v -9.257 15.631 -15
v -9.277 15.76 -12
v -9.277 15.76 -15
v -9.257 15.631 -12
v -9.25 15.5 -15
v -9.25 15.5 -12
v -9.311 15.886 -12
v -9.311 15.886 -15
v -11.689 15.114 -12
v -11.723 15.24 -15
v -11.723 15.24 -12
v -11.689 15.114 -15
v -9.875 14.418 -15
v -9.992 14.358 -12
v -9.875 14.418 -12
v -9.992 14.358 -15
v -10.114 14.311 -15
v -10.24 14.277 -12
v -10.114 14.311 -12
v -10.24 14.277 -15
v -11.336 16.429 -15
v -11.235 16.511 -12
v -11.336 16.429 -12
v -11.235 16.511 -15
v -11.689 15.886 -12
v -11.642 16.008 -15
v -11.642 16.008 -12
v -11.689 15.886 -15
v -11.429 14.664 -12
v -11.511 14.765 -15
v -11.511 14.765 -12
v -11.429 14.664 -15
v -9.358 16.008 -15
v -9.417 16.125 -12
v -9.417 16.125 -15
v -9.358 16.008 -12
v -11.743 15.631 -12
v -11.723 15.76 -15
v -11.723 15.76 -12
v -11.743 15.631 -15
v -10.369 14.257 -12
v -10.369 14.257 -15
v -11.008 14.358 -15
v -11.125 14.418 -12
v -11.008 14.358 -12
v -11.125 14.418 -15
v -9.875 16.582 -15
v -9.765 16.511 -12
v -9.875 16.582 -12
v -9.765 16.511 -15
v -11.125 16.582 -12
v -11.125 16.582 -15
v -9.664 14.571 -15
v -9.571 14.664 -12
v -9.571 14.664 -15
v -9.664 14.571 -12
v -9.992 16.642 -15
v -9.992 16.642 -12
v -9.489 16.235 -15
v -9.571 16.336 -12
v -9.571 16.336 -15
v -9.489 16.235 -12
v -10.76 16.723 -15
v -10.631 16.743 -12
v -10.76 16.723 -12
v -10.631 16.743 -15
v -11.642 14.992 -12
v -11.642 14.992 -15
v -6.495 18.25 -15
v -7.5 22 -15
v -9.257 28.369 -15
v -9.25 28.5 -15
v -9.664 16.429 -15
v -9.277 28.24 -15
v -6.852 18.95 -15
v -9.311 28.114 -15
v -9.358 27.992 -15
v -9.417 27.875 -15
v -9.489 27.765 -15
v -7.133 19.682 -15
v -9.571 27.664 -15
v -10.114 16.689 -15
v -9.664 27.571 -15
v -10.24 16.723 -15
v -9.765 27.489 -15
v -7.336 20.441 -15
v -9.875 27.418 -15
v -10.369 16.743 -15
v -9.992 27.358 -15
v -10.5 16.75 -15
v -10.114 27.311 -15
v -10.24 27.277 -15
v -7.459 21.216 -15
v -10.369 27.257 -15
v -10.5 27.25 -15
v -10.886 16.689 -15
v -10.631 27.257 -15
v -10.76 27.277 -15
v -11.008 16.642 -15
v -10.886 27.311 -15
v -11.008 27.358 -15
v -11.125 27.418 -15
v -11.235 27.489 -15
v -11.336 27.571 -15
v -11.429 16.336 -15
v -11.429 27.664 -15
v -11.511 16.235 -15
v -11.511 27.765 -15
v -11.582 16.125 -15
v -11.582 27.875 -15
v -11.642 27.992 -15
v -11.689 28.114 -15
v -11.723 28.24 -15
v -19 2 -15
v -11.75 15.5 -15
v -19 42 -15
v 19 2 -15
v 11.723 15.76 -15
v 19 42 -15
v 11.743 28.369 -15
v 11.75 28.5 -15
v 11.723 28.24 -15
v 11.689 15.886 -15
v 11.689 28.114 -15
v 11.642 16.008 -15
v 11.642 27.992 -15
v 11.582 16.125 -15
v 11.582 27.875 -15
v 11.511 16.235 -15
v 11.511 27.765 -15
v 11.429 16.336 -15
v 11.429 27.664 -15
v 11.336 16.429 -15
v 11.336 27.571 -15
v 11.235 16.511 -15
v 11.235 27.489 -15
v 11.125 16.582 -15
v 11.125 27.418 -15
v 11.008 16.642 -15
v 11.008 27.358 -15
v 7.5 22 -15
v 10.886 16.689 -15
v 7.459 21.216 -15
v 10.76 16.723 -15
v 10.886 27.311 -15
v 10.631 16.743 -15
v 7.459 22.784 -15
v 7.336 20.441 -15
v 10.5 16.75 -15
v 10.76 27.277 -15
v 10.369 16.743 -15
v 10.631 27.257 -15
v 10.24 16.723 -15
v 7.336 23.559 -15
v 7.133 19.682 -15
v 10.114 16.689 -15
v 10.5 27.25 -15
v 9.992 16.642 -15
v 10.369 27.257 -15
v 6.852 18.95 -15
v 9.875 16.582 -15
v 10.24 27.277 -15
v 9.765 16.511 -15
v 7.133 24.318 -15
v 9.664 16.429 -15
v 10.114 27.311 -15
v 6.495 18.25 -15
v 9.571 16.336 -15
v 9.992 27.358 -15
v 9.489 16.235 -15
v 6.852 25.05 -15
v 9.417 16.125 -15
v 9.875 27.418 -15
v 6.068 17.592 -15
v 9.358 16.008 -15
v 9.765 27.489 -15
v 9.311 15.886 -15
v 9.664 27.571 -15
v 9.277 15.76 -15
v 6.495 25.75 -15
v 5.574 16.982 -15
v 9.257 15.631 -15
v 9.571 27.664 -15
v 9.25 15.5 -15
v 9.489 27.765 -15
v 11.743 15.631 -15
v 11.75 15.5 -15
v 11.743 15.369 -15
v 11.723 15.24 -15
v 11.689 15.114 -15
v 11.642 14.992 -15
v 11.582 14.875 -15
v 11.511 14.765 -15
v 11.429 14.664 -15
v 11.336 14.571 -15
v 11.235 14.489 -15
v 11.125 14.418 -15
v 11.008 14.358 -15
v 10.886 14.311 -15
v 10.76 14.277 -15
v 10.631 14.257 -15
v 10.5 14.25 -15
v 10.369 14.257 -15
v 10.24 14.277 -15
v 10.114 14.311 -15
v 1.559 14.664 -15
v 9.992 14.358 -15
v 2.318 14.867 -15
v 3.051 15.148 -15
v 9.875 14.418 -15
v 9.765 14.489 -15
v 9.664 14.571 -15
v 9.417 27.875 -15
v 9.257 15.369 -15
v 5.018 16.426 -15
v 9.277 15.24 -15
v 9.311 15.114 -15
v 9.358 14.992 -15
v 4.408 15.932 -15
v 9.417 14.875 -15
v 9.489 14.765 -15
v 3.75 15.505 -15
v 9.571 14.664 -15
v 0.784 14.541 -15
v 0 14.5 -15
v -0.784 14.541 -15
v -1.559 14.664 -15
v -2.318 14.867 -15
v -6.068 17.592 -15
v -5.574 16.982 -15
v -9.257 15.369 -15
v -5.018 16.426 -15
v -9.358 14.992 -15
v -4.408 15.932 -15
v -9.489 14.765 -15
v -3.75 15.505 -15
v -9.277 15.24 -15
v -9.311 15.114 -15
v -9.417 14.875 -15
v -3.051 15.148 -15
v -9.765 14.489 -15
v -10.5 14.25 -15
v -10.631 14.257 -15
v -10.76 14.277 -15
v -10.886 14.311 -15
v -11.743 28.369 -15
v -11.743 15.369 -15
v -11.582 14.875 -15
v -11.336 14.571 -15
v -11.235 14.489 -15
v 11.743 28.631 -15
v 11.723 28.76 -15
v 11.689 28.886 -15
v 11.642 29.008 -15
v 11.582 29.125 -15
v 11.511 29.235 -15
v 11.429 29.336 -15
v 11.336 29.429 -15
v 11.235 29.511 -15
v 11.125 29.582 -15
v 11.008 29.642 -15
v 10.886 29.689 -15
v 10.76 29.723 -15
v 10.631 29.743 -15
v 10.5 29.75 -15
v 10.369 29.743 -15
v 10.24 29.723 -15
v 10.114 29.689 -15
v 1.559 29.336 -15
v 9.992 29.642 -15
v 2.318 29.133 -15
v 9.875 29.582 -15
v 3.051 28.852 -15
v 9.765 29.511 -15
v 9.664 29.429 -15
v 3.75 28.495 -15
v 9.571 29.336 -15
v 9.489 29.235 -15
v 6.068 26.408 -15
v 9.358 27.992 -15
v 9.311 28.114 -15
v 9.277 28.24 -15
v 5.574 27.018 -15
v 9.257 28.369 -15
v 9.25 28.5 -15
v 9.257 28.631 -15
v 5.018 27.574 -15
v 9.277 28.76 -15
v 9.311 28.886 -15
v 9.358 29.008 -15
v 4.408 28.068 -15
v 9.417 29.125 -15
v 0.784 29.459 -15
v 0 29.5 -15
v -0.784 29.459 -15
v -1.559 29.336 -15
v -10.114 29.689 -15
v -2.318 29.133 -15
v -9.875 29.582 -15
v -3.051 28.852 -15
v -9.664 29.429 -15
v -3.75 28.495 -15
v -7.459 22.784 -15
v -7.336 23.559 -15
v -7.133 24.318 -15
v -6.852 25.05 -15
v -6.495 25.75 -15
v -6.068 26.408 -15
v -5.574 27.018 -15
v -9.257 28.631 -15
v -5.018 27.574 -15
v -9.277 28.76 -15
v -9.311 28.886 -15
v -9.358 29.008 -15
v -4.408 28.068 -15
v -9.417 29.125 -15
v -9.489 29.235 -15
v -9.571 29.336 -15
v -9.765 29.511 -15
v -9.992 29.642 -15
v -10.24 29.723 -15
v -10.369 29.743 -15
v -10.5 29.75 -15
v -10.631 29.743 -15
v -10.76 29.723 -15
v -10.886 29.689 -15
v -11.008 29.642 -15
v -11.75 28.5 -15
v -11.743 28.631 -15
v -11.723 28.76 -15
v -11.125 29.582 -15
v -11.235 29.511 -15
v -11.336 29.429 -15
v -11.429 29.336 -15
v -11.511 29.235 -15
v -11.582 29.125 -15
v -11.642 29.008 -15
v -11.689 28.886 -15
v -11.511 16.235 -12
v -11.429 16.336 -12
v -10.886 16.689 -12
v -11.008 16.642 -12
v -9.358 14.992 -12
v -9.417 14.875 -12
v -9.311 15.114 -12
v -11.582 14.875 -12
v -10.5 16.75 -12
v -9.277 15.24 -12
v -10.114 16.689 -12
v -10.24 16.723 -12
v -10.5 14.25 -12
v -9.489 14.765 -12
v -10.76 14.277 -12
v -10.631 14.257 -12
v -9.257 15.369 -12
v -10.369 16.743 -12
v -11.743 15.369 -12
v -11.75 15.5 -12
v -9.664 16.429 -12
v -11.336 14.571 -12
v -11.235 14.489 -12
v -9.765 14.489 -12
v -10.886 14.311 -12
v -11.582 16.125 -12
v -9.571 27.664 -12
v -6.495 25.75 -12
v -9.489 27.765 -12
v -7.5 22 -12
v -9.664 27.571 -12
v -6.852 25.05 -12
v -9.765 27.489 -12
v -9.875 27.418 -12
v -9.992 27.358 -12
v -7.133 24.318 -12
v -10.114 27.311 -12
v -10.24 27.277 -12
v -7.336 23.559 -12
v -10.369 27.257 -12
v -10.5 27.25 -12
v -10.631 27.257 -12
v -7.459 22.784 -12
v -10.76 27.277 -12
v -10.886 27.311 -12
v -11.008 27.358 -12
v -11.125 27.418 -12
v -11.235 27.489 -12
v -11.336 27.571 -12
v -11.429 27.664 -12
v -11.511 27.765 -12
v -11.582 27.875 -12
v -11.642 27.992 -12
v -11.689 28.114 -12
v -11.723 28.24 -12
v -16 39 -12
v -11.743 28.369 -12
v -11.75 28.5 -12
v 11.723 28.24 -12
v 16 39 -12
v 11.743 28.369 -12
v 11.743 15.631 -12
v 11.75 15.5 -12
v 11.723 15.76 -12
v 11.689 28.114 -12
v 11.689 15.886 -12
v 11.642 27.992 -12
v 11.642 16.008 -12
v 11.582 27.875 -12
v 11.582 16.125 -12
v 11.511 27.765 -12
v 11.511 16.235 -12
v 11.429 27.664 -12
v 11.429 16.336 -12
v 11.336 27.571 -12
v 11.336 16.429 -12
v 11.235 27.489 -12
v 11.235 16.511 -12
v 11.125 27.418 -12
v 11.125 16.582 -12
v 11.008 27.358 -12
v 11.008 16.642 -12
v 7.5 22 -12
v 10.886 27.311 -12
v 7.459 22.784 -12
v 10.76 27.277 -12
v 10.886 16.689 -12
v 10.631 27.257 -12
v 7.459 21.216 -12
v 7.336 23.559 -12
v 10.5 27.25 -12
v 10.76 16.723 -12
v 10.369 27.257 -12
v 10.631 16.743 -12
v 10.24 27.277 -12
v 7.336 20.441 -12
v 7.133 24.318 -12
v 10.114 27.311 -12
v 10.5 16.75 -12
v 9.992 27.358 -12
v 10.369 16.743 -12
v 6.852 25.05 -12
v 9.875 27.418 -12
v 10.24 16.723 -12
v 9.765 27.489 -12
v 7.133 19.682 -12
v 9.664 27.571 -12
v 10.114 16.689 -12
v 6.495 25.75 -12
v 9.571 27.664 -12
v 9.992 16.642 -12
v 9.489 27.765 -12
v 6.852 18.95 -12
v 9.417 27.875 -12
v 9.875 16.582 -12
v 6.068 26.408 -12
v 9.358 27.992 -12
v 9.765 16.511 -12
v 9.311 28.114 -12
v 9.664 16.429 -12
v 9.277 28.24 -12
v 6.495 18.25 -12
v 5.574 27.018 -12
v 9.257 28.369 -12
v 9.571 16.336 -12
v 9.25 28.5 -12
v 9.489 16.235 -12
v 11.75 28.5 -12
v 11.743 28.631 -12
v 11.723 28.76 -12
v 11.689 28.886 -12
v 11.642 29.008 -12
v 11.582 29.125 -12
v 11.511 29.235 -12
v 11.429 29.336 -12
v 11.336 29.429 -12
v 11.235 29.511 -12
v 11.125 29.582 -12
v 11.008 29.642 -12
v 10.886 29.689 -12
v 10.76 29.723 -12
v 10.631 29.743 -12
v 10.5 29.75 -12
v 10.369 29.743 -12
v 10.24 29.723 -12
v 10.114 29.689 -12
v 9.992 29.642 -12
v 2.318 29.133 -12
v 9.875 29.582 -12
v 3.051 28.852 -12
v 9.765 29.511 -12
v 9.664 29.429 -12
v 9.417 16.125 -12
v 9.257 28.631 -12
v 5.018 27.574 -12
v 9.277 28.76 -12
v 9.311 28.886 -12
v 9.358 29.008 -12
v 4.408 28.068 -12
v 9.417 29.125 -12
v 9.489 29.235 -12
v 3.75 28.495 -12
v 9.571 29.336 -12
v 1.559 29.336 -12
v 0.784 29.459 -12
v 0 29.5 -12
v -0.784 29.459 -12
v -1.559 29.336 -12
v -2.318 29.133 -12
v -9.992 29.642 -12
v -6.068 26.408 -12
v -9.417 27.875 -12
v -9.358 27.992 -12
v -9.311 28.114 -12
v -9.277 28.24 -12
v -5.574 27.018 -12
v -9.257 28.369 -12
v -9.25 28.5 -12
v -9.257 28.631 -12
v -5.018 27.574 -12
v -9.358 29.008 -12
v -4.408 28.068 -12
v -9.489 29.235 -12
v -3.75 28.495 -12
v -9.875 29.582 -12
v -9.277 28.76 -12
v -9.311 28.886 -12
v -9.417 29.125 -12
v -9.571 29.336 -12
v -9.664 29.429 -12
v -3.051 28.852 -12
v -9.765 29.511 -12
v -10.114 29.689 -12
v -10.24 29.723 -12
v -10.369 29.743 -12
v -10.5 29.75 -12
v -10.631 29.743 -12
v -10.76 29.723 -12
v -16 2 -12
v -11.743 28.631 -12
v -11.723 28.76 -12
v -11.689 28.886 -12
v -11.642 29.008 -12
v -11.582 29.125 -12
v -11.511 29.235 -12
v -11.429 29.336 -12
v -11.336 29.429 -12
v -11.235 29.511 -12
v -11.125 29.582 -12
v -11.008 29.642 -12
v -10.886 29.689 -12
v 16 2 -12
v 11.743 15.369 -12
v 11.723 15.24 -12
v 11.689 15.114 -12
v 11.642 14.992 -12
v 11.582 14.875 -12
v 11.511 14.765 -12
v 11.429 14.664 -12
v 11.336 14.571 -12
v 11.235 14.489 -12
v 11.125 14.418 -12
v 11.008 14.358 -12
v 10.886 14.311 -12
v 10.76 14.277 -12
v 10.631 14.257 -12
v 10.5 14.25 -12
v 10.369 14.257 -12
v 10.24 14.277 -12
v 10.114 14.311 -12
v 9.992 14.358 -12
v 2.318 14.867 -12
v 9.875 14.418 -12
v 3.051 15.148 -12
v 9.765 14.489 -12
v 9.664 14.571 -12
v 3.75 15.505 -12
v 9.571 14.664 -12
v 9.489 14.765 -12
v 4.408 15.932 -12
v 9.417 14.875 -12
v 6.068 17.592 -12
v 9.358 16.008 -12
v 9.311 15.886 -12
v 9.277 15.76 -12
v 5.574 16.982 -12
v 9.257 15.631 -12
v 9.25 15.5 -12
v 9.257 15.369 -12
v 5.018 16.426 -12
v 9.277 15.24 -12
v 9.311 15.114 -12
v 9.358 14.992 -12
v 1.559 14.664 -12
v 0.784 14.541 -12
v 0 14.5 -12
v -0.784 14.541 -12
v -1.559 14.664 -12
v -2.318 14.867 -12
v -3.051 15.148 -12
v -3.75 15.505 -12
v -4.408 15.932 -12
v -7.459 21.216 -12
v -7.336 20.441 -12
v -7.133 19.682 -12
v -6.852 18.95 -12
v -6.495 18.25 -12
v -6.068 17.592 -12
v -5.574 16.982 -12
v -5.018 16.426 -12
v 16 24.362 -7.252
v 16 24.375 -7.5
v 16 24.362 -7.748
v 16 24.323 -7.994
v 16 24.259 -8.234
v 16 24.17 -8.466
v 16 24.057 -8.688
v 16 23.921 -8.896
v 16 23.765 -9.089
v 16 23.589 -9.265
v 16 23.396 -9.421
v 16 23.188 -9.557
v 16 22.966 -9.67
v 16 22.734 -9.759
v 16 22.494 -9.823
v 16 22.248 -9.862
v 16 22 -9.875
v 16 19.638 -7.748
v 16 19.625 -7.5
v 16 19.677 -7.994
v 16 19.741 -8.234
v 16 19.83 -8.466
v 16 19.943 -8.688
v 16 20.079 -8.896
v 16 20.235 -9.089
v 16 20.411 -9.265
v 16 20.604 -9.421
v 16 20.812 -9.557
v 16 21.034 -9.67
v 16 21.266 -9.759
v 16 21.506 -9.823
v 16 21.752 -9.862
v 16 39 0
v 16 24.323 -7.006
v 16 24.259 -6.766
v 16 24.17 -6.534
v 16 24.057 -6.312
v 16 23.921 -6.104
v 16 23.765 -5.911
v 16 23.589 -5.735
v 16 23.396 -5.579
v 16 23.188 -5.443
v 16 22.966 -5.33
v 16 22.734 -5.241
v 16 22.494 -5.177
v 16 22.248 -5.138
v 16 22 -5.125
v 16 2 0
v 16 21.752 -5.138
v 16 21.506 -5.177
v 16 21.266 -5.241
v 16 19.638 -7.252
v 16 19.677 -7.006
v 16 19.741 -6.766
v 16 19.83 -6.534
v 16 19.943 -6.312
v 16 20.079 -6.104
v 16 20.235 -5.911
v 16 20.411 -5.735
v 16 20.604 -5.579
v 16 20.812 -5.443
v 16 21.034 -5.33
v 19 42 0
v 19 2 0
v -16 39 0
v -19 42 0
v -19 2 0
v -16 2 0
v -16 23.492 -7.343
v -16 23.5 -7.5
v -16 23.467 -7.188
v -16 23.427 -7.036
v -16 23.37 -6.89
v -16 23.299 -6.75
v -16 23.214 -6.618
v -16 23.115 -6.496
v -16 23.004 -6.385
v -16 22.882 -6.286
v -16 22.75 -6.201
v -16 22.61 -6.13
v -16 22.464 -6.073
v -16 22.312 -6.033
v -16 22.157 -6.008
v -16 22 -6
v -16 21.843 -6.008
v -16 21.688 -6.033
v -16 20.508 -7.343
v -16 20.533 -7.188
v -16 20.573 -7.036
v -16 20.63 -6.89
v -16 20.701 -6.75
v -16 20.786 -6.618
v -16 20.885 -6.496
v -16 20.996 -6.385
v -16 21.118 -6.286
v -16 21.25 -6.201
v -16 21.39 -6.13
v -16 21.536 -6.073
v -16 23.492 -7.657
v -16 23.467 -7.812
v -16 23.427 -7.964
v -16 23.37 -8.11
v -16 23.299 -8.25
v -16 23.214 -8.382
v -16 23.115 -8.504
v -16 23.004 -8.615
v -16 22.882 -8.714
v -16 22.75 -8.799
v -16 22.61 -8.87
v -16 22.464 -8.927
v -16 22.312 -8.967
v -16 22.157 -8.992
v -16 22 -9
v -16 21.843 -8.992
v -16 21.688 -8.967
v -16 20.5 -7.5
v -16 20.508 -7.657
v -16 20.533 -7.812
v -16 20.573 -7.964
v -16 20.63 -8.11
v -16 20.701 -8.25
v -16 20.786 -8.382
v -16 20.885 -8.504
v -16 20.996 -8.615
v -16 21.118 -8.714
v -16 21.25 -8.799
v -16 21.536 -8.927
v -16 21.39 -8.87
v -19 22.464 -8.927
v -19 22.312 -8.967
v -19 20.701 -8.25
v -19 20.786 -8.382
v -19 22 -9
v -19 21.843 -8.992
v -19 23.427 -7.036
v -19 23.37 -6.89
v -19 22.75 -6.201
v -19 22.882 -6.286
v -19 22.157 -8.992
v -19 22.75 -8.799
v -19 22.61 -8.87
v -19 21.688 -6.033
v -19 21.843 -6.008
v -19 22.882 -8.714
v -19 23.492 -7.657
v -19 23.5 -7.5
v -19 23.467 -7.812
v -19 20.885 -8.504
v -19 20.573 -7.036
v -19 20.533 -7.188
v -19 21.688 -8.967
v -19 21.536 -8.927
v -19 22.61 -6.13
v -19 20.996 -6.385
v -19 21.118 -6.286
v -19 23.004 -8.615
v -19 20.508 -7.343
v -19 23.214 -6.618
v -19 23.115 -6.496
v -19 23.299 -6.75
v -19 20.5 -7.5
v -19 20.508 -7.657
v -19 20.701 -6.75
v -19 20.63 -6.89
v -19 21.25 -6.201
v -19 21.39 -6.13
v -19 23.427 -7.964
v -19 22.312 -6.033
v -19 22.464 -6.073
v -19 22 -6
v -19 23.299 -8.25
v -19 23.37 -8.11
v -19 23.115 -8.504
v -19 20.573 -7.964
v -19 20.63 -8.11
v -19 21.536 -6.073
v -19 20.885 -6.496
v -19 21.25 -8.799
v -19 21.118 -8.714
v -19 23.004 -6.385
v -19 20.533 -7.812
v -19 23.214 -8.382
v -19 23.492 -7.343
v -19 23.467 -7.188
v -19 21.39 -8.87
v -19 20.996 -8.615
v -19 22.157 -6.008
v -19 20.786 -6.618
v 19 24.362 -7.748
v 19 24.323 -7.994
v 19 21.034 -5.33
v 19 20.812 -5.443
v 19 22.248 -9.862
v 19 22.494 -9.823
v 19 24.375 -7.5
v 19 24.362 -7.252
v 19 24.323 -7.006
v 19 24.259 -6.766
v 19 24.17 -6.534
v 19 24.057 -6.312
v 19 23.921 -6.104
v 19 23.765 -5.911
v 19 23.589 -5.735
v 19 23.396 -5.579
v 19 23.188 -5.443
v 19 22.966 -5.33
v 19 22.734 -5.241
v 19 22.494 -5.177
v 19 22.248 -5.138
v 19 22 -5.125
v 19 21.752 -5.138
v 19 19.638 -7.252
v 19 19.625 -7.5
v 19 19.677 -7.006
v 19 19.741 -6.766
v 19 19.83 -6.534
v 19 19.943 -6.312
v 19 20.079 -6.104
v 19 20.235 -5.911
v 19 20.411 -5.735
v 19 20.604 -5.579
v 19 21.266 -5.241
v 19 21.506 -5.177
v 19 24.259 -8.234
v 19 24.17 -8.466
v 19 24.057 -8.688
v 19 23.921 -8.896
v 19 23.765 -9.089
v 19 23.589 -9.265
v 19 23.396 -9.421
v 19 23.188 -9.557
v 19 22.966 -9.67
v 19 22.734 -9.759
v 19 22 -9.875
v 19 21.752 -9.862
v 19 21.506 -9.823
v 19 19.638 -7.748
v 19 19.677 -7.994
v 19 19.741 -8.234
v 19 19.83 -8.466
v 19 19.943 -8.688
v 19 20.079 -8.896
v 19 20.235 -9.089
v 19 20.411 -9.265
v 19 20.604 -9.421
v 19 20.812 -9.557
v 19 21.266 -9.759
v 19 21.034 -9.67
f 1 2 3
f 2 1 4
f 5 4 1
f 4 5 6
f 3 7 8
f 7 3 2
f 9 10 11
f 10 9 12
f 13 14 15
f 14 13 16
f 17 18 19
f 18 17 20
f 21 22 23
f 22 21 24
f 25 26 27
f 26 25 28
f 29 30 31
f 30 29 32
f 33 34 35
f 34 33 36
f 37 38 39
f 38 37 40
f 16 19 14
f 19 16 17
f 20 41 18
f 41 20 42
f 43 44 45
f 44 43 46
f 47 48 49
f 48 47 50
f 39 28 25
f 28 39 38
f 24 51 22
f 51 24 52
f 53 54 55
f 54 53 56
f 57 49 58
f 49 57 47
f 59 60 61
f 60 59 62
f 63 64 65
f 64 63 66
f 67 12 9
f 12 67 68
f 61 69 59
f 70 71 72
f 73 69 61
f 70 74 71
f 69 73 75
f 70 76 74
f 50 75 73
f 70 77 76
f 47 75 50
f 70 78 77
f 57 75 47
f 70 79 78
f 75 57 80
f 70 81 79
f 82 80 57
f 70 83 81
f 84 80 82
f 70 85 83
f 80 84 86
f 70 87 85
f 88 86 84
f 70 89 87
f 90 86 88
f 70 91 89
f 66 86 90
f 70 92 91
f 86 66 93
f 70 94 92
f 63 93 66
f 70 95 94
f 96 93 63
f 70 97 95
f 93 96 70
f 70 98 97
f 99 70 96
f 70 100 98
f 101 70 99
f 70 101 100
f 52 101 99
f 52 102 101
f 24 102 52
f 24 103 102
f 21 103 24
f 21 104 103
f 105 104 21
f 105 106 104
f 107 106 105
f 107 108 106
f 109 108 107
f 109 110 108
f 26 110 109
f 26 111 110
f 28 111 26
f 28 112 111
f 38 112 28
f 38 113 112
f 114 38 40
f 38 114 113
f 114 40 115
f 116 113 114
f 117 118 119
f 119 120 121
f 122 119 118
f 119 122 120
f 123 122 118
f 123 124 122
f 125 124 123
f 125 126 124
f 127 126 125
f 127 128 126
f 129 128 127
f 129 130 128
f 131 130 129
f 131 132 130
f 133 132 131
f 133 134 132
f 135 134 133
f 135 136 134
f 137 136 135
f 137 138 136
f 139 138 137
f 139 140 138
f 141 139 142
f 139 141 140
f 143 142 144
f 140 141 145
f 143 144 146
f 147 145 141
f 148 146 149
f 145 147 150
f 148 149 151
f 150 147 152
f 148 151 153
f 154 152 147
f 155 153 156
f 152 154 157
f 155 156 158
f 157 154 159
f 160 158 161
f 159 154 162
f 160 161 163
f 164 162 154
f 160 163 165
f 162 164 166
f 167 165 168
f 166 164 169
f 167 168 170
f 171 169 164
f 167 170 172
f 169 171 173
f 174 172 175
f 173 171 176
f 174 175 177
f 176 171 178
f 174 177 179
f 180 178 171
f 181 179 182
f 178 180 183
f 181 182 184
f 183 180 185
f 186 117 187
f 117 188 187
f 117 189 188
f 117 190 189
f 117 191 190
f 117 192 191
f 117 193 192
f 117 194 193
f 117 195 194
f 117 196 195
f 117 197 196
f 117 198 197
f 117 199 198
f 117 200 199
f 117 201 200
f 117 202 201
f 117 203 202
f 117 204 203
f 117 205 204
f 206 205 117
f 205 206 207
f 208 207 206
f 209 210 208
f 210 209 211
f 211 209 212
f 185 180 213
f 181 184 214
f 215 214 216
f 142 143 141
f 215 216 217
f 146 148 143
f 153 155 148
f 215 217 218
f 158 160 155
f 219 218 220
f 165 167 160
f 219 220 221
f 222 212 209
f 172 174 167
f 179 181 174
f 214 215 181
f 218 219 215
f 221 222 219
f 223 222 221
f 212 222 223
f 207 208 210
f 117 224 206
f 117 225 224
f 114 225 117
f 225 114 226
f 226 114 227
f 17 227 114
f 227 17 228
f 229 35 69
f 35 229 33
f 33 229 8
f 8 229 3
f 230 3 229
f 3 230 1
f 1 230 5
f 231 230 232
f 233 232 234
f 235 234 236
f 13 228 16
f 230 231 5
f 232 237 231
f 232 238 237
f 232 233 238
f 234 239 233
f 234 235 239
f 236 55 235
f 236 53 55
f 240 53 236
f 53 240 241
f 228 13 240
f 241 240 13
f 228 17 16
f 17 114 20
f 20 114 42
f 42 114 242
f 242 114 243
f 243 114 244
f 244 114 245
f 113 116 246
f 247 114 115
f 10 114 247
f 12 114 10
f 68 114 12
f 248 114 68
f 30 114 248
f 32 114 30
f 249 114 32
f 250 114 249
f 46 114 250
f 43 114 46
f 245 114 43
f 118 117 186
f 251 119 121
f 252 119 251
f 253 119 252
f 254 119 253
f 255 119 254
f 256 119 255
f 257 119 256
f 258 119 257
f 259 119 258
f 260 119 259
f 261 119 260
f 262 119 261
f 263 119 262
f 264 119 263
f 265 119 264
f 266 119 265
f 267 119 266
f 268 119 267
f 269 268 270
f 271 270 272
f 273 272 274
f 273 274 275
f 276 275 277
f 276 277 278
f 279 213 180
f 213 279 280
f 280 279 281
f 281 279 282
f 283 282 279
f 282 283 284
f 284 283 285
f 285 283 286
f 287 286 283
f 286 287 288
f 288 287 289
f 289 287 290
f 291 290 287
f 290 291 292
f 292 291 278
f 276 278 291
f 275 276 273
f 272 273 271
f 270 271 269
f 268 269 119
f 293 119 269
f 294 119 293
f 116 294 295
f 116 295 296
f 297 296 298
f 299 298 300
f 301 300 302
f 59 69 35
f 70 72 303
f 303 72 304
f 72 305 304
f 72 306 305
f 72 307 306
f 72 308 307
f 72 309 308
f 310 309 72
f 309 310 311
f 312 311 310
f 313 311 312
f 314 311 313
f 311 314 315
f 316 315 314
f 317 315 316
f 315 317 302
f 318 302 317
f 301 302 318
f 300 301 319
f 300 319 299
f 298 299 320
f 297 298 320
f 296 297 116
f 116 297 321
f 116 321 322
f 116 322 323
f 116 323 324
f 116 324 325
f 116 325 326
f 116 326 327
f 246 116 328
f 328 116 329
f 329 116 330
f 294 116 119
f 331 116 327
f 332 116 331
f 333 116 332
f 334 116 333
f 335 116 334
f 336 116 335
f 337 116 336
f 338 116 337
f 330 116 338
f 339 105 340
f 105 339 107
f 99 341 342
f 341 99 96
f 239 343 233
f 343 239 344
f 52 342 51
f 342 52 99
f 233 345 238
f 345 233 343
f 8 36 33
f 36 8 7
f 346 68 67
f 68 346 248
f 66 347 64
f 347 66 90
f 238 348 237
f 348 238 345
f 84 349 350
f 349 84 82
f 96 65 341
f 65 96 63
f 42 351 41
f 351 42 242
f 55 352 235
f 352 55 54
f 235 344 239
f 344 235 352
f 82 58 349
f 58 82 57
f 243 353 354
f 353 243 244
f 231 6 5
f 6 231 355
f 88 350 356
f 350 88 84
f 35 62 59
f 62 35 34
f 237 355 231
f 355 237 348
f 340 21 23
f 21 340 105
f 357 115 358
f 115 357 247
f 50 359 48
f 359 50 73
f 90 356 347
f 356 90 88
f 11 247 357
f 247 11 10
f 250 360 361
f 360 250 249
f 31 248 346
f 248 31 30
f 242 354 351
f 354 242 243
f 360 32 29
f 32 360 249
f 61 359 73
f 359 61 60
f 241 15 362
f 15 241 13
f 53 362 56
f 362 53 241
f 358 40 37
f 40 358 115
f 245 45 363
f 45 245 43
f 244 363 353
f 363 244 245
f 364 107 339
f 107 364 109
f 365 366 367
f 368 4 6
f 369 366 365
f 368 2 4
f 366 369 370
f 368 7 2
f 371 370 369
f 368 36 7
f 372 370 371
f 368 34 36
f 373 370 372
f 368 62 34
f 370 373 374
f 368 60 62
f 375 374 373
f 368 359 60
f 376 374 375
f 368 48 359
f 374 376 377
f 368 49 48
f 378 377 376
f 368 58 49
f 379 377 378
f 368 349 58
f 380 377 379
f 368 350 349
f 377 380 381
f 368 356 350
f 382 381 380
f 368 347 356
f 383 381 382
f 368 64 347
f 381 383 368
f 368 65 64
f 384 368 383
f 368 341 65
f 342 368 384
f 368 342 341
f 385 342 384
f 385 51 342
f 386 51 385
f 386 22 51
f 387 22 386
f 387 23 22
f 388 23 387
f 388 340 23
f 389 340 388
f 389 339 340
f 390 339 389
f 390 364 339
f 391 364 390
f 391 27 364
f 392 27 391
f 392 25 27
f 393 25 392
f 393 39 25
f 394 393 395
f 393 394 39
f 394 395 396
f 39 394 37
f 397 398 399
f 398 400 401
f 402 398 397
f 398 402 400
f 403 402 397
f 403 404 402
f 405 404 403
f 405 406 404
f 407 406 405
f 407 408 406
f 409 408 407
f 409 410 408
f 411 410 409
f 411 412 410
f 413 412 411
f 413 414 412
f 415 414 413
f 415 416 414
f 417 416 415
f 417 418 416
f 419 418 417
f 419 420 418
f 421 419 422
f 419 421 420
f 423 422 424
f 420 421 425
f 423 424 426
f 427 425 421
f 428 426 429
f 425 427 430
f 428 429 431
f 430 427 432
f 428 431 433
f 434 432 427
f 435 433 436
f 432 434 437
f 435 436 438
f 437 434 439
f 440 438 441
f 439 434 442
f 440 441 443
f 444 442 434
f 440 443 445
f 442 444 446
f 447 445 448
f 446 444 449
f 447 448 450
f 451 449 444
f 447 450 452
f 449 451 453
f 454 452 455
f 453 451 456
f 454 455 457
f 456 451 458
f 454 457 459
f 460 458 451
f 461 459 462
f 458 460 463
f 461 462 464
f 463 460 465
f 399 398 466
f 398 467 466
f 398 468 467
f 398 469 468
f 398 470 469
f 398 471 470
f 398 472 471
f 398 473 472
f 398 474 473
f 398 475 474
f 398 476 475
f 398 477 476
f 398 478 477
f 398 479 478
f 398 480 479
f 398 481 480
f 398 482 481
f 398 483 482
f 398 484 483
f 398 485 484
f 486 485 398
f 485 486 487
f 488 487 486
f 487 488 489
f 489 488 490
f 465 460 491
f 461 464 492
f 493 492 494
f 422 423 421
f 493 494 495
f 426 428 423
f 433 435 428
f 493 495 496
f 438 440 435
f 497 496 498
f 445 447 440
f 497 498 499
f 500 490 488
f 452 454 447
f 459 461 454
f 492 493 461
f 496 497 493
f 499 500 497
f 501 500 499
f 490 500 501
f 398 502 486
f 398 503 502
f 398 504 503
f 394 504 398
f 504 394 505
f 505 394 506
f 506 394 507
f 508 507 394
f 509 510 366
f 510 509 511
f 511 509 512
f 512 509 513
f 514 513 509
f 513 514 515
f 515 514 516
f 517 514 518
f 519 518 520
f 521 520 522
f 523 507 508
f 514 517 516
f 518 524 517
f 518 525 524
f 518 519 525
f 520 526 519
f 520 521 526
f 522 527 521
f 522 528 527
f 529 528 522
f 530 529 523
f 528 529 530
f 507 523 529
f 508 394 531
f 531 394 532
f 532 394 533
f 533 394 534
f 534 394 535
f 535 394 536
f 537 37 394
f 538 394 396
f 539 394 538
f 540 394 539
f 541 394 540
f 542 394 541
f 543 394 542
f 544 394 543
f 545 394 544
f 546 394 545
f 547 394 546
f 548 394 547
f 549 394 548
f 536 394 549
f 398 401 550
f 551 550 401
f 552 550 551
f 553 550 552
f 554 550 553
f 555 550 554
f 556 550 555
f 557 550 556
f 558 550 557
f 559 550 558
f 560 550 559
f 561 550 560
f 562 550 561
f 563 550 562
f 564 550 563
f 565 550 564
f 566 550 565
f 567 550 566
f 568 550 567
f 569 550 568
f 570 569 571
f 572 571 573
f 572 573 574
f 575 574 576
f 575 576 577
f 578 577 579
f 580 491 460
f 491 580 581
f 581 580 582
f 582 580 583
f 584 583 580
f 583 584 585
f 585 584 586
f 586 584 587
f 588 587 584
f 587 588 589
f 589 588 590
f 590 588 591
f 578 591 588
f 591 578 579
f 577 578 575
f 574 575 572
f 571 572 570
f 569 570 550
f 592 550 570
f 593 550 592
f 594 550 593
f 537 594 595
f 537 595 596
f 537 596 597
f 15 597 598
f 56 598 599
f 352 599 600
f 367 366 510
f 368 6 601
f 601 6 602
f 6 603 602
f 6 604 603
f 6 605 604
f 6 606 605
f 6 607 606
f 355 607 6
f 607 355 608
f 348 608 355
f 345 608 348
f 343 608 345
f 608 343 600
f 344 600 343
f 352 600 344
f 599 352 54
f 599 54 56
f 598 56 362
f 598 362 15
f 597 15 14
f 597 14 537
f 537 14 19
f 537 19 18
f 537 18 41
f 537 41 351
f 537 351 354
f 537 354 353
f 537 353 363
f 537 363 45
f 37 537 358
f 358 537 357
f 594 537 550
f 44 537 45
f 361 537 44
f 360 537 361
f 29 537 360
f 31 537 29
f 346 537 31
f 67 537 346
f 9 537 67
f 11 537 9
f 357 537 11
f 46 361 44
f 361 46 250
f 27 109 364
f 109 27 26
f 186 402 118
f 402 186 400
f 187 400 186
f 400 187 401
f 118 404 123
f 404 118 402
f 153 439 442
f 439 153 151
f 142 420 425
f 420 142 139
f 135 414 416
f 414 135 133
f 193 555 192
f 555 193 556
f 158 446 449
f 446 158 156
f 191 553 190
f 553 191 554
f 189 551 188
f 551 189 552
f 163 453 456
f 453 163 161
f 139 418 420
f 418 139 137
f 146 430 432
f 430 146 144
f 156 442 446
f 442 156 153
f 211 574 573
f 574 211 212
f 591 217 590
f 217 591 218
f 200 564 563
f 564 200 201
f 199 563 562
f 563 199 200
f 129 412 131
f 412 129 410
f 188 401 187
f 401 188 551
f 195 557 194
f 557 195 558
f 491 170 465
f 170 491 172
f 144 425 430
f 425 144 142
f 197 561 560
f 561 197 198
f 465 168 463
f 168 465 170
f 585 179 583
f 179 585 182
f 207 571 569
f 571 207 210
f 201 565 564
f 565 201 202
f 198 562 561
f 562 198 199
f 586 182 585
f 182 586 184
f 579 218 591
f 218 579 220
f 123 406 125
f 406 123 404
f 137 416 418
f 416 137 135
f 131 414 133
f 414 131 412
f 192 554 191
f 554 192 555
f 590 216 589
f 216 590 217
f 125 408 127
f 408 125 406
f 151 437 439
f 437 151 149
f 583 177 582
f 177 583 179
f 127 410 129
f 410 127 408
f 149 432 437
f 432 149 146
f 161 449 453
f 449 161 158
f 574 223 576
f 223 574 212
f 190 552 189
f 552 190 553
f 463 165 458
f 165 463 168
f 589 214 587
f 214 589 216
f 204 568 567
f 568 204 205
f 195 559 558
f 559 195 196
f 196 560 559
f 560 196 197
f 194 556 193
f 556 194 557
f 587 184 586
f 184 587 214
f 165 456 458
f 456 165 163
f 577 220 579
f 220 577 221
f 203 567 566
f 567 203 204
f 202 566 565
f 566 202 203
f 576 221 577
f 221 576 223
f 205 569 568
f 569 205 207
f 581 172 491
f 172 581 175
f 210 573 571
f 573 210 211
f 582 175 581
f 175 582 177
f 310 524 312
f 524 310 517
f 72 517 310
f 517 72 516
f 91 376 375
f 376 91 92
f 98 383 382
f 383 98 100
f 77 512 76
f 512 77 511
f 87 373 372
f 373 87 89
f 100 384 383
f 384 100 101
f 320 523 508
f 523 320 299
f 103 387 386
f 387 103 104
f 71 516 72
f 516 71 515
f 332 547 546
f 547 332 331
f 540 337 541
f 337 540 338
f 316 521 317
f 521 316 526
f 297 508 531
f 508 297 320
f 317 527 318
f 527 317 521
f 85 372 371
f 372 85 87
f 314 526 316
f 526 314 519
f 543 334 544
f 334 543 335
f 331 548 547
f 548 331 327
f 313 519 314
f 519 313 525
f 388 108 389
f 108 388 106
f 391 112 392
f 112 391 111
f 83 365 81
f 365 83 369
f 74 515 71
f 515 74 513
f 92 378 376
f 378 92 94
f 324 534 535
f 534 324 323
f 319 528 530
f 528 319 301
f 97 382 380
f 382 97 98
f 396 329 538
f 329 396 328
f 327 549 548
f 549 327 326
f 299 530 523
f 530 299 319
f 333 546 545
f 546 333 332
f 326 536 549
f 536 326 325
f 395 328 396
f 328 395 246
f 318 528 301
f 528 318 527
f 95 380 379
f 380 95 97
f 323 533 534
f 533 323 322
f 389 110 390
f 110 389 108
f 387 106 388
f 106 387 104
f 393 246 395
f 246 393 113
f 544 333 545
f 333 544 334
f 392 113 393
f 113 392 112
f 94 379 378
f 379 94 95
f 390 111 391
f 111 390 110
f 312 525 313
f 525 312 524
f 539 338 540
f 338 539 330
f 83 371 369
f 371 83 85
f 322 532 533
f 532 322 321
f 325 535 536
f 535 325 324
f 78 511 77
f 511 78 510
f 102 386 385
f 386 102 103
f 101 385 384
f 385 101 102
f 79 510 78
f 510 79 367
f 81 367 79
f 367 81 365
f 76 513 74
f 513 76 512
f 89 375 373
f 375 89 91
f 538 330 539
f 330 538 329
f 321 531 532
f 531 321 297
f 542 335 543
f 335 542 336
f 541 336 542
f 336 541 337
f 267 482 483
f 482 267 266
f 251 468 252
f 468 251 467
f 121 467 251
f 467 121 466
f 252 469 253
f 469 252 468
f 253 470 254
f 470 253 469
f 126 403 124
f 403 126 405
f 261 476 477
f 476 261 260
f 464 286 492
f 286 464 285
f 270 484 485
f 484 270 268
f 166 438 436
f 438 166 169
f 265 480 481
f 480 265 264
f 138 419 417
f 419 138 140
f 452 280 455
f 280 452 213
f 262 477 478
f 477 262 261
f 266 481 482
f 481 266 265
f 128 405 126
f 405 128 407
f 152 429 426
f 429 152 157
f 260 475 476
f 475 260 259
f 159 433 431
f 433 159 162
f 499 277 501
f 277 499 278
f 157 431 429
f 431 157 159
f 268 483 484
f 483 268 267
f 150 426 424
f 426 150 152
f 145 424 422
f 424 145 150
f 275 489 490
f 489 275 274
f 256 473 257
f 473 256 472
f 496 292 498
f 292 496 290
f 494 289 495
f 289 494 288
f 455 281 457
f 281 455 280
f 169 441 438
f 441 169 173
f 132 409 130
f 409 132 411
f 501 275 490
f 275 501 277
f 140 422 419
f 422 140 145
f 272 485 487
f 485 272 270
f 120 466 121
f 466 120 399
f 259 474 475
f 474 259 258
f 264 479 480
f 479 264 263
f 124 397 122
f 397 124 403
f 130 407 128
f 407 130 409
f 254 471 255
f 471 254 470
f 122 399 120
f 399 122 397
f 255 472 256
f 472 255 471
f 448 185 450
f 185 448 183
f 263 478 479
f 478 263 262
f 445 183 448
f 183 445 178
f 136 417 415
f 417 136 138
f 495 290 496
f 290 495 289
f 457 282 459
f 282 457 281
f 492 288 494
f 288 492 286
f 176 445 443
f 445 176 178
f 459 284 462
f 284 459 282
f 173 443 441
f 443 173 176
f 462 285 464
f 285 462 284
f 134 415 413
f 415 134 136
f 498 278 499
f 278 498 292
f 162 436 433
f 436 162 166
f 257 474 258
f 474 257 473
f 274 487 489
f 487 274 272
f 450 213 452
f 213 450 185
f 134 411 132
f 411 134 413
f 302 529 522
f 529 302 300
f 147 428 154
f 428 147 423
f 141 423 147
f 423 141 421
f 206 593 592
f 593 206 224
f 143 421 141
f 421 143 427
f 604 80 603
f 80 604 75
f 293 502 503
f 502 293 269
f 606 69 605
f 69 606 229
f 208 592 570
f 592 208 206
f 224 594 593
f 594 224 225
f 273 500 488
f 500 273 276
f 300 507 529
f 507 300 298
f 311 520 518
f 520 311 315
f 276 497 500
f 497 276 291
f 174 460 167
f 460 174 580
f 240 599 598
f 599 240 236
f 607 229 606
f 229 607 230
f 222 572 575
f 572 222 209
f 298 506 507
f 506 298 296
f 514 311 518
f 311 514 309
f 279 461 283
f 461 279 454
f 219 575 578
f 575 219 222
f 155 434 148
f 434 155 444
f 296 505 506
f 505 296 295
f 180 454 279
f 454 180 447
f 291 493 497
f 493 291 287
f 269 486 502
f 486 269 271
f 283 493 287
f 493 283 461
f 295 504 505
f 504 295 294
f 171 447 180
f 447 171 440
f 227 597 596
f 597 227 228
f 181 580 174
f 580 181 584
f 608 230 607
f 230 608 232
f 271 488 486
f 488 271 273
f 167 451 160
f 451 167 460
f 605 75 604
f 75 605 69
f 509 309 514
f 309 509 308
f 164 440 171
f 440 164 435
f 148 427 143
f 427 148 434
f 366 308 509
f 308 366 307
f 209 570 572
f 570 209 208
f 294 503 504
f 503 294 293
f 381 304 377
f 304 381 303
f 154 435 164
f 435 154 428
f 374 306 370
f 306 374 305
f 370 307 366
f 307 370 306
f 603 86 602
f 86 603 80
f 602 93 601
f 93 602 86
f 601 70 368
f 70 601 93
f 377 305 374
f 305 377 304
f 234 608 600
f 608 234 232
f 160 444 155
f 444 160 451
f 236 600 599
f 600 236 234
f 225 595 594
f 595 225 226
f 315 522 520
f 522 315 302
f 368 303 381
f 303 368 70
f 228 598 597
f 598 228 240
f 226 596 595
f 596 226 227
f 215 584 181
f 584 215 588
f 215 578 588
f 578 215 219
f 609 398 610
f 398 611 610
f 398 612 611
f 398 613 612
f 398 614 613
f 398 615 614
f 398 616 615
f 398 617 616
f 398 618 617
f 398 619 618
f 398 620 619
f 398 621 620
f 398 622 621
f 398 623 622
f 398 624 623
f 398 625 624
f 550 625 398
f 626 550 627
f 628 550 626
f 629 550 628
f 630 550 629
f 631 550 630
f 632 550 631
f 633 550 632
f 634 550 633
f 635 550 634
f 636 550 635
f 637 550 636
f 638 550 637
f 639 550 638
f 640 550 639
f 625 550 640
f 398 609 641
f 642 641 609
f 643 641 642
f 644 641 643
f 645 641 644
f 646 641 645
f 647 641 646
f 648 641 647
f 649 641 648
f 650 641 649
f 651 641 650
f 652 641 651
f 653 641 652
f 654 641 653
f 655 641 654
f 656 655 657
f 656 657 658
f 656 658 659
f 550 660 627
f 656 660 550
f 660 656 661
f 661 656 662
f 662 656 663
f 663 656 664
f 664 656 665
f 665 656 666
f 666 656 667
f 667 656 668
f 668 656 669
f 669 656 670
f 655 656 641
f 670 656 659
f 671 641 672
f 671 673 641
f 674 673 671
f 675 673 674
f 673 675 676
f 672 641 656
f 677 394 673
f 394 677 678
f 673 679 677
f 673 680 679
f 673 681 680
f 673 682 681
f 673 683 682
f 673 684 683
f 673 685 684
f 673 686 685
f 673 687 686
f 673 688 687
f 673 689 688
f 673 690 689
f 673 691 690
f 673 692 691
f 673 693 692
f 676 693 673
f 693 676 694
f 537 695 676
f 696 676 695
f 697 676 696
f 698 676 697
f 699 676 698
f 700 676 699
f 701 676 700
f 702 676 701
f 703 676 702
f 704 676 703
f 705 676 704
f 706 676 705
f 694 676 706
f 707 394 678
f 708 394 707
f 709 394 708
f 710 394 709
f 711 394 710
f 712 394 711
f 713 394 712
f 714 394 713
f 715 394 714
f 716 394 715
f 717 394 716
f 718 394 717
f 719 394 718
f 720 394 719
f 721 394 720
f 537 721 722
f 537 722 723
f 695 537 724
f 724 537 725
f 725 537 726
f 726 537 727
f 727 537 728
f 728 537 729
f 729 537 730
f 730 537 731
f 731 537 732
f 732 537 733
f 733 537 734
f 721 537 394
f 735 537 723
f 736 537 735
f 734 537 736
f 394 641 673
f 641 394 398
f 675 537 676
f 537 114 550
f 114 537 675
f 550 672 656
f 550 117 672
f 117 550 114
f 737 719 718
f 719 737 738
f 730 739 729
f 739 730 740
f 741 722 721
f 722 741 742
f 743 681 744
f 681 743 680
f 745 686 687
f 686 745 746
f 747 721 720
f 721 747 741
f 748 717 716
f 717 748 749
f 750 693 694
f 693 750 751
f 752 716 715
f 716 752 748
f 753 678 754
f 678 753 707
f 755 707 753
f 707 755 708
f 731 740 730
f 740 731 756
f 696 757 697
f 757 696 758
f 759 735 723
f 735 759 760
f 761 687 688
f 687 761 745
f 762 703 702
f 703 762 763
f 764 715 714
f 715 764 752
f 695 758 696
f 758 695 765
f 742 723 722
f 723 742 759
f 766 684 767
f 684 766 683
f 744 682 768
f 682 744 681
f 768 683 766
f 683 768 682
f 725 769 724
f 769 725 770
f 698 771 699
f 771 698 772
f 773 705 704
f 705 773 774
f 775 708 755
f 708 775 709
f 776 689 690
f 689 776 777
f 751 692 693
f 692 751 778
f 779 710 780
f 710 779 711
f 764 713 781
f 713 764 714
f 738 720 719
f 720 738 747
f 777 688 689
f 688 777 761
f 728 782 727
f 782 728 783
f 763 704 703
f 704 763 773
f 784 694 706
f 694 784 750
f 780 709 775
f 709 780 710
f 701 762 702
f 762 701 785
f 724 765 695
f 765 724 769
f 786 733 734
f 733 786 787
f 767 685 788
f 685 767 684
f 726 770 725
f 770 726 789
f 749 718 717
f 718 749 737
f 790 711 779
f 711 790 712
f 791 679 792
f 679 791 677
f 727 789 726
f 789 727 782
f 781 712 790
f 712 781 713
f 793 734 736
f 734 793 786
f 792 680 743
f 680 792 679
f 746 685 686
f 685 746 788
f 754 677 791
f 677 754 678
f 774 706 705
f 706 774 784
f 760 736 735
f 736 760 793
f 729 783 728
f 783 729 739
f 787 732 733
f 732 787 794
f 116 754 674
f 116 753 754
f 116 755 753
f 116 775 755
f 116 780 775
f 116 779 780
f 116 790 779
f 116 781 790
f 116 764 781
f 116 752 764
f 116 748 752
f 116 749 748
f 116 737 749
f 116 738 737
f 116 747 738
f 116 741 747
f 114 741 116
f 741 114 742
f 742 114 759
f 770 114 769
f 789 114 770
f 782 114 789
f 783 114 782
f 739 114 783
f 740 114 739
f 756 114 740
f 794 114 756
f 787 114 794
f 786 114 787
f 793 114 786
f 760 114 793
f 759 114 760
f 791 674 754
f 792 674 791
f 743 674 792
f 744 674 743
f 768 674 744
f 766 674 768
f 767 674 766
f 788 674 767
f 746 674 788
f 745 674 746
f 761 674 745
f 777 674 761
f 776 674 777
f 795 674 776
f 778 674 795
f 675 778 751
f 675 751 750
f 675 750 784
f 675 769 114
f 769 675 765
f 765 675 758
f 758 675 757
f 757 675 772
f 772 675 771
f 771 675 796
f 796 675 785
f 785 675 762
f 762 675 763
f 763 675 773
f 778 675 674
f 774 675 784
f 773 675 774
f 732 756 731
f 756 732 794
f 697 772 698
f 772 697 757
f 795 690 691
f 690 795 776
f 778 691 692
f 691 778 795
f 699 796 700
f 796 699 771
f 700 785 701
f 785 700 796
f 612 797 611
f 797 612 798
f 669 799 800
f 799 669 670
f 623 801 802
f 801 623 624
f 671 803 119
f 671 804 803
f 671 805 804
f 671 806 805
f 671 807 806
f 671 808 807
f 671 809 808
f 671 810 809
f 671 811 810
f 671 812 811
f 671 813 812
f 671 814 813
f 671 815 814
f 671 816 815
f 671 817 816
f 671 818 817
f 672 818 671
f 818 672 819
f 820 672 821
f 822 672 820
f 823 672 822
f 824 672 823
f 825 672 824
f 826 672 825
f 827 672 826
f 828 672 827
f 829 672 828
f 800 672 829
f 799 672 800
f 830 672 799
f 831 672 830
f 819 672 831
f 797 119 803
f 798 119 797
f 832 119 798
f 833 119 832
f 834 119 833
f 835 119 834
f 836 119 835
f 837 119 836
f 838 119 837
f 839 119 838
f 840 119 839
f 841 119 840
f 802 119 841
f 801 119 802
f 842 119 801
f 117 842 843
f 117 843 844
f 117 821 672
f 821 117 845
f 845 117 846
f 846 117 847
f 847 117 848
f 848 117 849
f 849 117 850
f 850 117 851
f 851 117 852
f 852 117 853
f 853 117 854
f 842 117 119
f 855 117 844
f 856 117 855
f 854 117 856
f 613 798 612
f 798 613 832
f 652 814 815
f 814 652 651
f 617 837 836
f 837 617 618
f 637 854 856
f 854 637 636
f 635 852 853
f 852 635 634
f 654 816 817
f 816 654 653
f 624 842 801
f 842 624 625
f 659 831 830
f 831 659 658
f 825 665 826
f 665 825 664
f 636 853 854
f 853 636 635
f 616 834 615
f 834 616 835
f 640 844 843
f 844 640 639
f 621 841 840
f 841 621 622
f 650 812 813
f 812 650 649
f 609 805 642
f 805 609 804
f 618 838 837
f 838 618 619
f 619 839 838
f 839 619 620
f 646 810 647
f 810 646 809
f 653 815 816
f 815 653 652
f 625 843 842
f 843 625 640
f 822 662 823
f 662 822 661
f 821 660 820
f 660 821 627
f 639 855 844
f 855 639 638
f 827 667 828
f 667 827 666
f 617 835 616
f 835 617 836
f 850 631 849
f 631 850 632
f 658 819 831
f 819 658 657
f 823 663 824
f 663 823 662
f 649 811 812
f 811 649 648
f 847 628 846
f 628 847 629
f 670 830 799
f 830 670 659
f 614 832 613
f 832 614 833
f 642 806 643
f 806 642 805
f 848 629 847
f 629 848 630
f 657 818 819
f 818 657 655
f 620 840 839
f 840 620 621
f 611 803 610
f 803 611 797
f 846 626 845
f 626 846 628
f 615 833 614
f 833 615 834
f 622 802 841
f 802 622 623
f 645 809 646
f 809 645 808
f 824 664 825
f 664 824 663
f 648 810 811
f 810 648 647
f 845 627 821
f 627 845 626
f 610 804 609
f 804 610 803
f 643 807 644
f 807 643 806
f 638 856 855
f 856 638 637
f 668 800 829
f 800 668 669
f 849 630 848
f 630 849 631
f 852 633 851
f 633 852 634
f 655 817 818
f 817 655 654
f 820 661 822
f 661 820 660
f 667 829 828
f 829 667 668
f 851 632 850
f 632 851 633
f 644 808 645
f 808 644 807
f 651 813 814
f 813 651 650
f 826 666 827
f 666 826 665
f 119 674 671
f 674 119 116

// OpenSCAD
// file: ../lib/imx219.scad
// lens center is at (0, 0, 0)
$fn=60;

module imx219_camera_holes(thickness = 2, screw_hole_diameter = 2.5)
{
    lens_side_length = 9.5;
    
    union()
    {
//        for ( y_offset = [0, 13] )
        for ( y_offset = [-6.5, 6.5] )
        {
            for ( x_offset = [-10.5, 10.5] )
            {
                translate([x_offset, y_offset, 0])
                cylinder(d=screw_hole_diameter, h=thickness);
            }
        }
        
//        translate([-lens_side_length / 2, -lens_side_length / 2, 0])
//        cube([9.5, 9.5, thickness]);
        cylinder(d=15,h=thickness);
    }
}

//imx219_camera_holes();
// file: ../lib/micro_servo.scad
$fn = 60;



module micro_servo()
{
    servo_mount_width = 8.5;
    servo_body_length = 22.5;
    servo_body_width = 12; // square body
    servo_body_height = 22.5;
    servo_axis_length = 15.5;

    mounting_arm_thickness = 2.5;
    mounting_arm_length = 5;
    mounting_arm_height = 15;

    gearbox_cylinder_height = 4;
    major_gearbox_offset = 0.5; // distance from edge
    major_gearbox_cylinder_diameter = 11.5;
    minor_gearbox_offset = 5.5; // distance from major gearbox center
    //minor_gearbox_cylinder_diameter = 5.5;
    minor_gearbox_cylinder_diameter = 6.5; // for simplicity

    control_head_diameter = 5;
    control_head_height = 3;
    
    translate([-servo_body_width / 2, 0, 0])
    translate([0, -servo_body_length + major_gearbox_offset + (major_gearbox_cylinder_diameter / 2), 0])
    translate([0, 0, -(servo_body_height + gearbox_cylinder_height)])
    union()
    {
        cube([servo_body_width, servo_body_length, servo_body_height]);
        
        // forward mounting arm
        translate([0, servo_body_length, mounting_arm_height])
        cube([servo_body_width, mounting_arm_length, mounting_arm_thickness]);
        
        // rear mounting arm
        translate([0, -mounting_arm_length, mounting_arm_height])
        cube([servo_body_width, mounting_arm_length, mounting_arm_thickness]);
        
        // major gearbox cylinder
        translate([major_gearbox_offset/2, servo_body_length - major_gearbox_offset, servo_body_height])
        translate([major_gearbox_cylinder_diameter / 2, -major_gearbox_cylinder_diameter / 2, 0])
        cylinder(d=major_gearbox_cylinder_diameter, h=gearbox_cylinder_height);
        
        // minor gearbox cylinder
        translate([major_gearbox_offset/2, servo_body_length - major_gearbox_offset, servo_body_height])
        translate([major_gearbox_cylinder_diameter / 2, -major_gearbox_cylinder_diameter / 2, 0])
        translate([0, -minor_gearbox_offset, 0])
        cylinder(d=minor_gearbox_cylinder_diameter, h=gearbox_cylinder_height);
        
        // control head
        translate([0, servo_body_length - major_gearbox_offset, servo_body_height])
        translate([major_gearbox_cylinder_diameter / 2, -major_gearbox_cylinder_diameter / 2, gearbox_cylinder_height])
        cylinder(d=control_head_diameter, h=control_head_height);
    }
}

module micro_servo_void()
{
    servo_mount_width = 9.5;
    servo_body_length = 23.5;
    servo_body_width = 13; // square body
    servo_body_height = 23.5;
    servo_axis_length = 15.5;

    mounting_arm_thickness = 3.5;
    mounting_arm_length = 6;
    mounting_arm_height = 15;

    gearbox_cylinder_height = 4.5;
    major_gearbox_offset = 0.5; // distance from edge
    major_gearbox_cylinder_diameter = 12.5;
    minor_gearbox_offset = 5.5; // distance from major gearbox center
    //minor_gearbox_cylinder_diameter = 5.5;
    minor_gearbox_cylinder_diameter = 6.5; // for simplicity

    control_head_diameter = 5;
    control_head_height = 3;
    
    translate([-servo_body_width / 2, 0, 0])
    translate([0, -servo_body_length + major_gearbox_offset + (major_gearbox_cylinder_diameter / 2), 0])
    translate([0, 0, -(servo_body_height + gearbox_cylinder_height)])
    union()
    {
        cube([servo_body_width, servo_body_length, servo_body_height]);
        
        // forward mounting arm
        translate([0, servo_body_length, 0])
        cube([servo_body_width, mounting_arm_length, mounting_arm_thickness + mounting_arm_height]);
        
        // rear mounting arm
        translate([0, -mounting_arm_length, 0])
        cube([servo_body_width, mounting_arm_length, mounting_arm_thickness + mounting_arm_height]);
        
        // major gearbox cylinder
        translate([major_gearbox_offset/2, servo_body_length - major_gearbox_offset, servo_body_height])
        translate([major_gearbox_cylinder_diameter / 2, -major_gearbox_cylinder_diameter / 2, 0])
        cylinder(d=major_gearbox_cylinder_diameter, h=gearbox_cylinder_height);
        
        // minor gearbox cylinder
        translate([major_gearbox_offset/2, servo_body_length - major_gearbox_offset, servo_body_height])
        translate([major_gearbox_cylinder_diameter / 2, -major_gearbox_cylinder_diameter / 2, 0])
        translate([0, -minor_gearbox_offset, 0])
        cylinder(d=minor_gearbox_cylinder_diameter, h=gearbox_cylinder_height);
        
        // control head
        translate([0, servo_body_length - major_gearbox_offset, servo_body_height])
        translate([major_gearbox_cylinder_diameter / 2, -major_gearbox_cylinder_diameter / 2, gearbox_cylinder_height])
        cylinder(d=control_head_diameter, h=control_head_height);
    }
}

//micro_servo_void();
// file: ../lib/rpi.scad
module base_plate_screw_head_cone(screw_head_radius = 6, screw_head_depth = 2)
{

    rotate_extrude()
    {
        translate([0, 0, 0]) polygon(points=[[0,0],[screw_head_radius, 0],[0,screw_head_depth]], paths=[[0,1,2]]);
    }
}


module raspberry_pi_holes(thickness = 3, screw_hole_diameter = 3)
{
//    z_offset = -thickness / 2.0;
    z_offset = -thickness;
    for ( x_offset = [3.5, 61.5] )
    {
        for ( y_offset = [3.5, 52.5] )
        {
            union()
            {
                translate([x_offset, y_offset, z_offset]) cylinder(d=screw_hole_diameter, h=thickness);
                translate([x_offset, y_offset, z_offset]) base_plate_screw_head_cone();
            }
        }
    }
}


// camera hole is centered at (0, 0, 0)
//camera_hole_center_x = 0;
//camera_hole_center_y = 6.7;
//module rpi_camera_holes(thickness = 2)
//{
//    wall_thickness = thickness;
//    
//    screw_head_depth = 2;
//    screw_head_radius = 4;
//    
//    translate([0, 0, -wall_thickness + 1])
//    union()
//    {
//        for ( y_offset = [-6.75, 6.25] )
//        {
//            for ( x_offset = [-10.5, 10.5] )
//            {
//                // screw hole
//                translate([camera_hole_center_x + x_offset, camera_hole_center_y+ y_offset, -10])
//                cylinder(h=20, r=1.25);
//                
//                // screw head cone
//                translate([camera_hole_center_x + x_offset, camera_hole_center_y+ y_offset, 0])
//                rotate([0, 0, 0])
//                rotate_extrude()
//                {
//                    translate([0, 0, 0]) polygon(points=[[0,0],[screw_head_radius, 0],[0,screw_head_depth]], paths=[[0,1,2]]);
//                }
//            }
//        }
//    }
//    
//    translate([camera_hole_center_x, camera_hole_center_y - 6.75, -wall_thickness])cube(size = [9.5, 9.5, 9.5], center = true);
//}

// lens center is at (0, 0, 0)
module rpi_camera_holes(thickness = 2, screw_hole_diameter = 2.5)
{
    lens_side_length = 9.5;
    
    union()
    {
        for ( y_offset = [0, 13] )
        {
            for ( x_offset = [-10.5, 10.5] )
            {
                translate([x_offset, y_offset, 0])
                cylinder(d=screw_hole_diameter, h=thickness);
            }
        }
        
        translate([-lens_side_length / 2, -lens_side_length / 2, 0])
        cube([9.5, 9.5, thickness]);
    }
}
// file: ../lib/rpi_tilt_gimbal_lib.scad
include <rpi.scad>
include <micro_servo.scad>
include <imx219.scad>

// for connecting to the drone
y_offset = -3;

$fn = 60;

width = 38;
length = 40;
thickness = 15;

support_length = 5;
left_arm_width = 8;
right_arm_width = 15;
spacing = 0.5;
rear_spacing = 2;

base_translation_width = (width / 2) + left_arm_width + spacing;
base_tilt_axis_y_offset = support_length + rear_spacing + (length / 2);
mount_tilt_axis_y_offset = length / 2;
right_arm_x_offset = (width / 2) + spacing;

camera_mount_brim = 3; //mm
camera_mount_thickness = 3;

module tilt_gimbal_base()
{
    translate([0, -support_length, -thickness])
    union()
    {
        // base support
        translate([-base_translation_width, 0, 0])
        cube([width + left_arm_width + right_arm_width + (2 * spacing), support_length, thickness]);
        
        // left arm
        difference()
        {
            translate([-base_translation_width, support_length, 0])
            cube([left_arm_width, length + rear_spacing, thickness]);
            
            translate([-base_translation_width, base_tilt_axis_y_offset, thickness / 2])
            rotate([0, 90, 0])
            cylinder(d = 3, h = left_arm_width);
        }
        
        // right arm with servo mount
        difference()
        {
            union()
            {
                translate([right_arm_x_offset, support_length, 0])
                cube([right_arm_width, length + rear_spacing, thickness]);
            }
            union()
            {
                // axis non-contact hole
                translate([right_arm_x_offset, base_tilt_axis_y_offset, thickness / 2])
                rotate([0, 90, 0])
                cylinder(d = 5.5, h = right_arm_width);
                
                // servo void
                translate([right_arm_x_offset - 1, base_tilt_axis_y_offset, thickness/2])
                rotate([0, -90, 0])
                micro_servo_void();
            }
        }
        

    }
}

module tilt_gimbal_camera_mount()
{
    translate([-width/2, rear_spacing, -thickness])
    difference()
    {
        union()
        {
            translate([0, 0, 0])
            cube([width, length, thickness]);
            

        }
        union()
        {
            // indentation
            translate([camera_mount_brim, 0, camera_mount_thickness])
            cube([width - (2 * camera_mount_brim), length - camera_mount_brim, thickness - camera_mount_thickness]);
            
            // camera mounting holes
            translate([width / 2, mount_tilt_axis_y_offset, 0])
            rpi_camera_holes(thickness = camera_mount_thickness);
            
            // left axis hole
            translate([0, mount_tilt_axis_y_offset, thickness / 2])
            rotate([0, 90, 0])
            cylinder(d=3, h=camera_mount_brim);
            
            // right axis hole with servo contact
            translate([width - camera_mount_brim, mount_tilt_axis_y_offset, thickness / 2])
            rotate([0, 90, 0])
            cylinder(d=4.75, h=camera_mount_brim);
        }
    }
}

module fisheye_tilt_gimbal_camera_mount()
{
    translate([-width/2, rear_spacing, -thickness])
    difference()
    {
        union()
        {
            translate([0, 0, 0])
            cube([width, length, thickness]);
            

        }
        union()
        {
            // indentation
            translate([camera_mount_brim, 0, camera_mount_thickness])
            cube([width - (2 * camera_mount_brim), length - camera_mount_brim, thickness - camera_mount_thickness]);
            
            // camera mounting holes
            translate([width / 2, mount_tilt_axis_y_offset, 0])
            imx219_camera_holes(thickness = camera_mount_thickness);
            
            // left axis hole
            translate([0, mount_tilt_axis_y_offset, thickness / 2])
            rotate([0, 90, 0])
            cylinder(d=3, h=camera_mount_brim);
            
            // right axis hole with servo contact
            translate([width - camera_mount_brim, mount_tilt_axis_y_offset, thickness / 2])
            rotate([0, 90, 0])
            cylinder(d=4.75, h=camera_mount_brim);
        }
    }
}

//tilt_gimbal_base();
//tilt_gimbal_camera_mount();
// main file
include <../lib/rpi_tilt_gimbal_lib.scad>

fisheye_tilt_gimbal_camera_mount();
